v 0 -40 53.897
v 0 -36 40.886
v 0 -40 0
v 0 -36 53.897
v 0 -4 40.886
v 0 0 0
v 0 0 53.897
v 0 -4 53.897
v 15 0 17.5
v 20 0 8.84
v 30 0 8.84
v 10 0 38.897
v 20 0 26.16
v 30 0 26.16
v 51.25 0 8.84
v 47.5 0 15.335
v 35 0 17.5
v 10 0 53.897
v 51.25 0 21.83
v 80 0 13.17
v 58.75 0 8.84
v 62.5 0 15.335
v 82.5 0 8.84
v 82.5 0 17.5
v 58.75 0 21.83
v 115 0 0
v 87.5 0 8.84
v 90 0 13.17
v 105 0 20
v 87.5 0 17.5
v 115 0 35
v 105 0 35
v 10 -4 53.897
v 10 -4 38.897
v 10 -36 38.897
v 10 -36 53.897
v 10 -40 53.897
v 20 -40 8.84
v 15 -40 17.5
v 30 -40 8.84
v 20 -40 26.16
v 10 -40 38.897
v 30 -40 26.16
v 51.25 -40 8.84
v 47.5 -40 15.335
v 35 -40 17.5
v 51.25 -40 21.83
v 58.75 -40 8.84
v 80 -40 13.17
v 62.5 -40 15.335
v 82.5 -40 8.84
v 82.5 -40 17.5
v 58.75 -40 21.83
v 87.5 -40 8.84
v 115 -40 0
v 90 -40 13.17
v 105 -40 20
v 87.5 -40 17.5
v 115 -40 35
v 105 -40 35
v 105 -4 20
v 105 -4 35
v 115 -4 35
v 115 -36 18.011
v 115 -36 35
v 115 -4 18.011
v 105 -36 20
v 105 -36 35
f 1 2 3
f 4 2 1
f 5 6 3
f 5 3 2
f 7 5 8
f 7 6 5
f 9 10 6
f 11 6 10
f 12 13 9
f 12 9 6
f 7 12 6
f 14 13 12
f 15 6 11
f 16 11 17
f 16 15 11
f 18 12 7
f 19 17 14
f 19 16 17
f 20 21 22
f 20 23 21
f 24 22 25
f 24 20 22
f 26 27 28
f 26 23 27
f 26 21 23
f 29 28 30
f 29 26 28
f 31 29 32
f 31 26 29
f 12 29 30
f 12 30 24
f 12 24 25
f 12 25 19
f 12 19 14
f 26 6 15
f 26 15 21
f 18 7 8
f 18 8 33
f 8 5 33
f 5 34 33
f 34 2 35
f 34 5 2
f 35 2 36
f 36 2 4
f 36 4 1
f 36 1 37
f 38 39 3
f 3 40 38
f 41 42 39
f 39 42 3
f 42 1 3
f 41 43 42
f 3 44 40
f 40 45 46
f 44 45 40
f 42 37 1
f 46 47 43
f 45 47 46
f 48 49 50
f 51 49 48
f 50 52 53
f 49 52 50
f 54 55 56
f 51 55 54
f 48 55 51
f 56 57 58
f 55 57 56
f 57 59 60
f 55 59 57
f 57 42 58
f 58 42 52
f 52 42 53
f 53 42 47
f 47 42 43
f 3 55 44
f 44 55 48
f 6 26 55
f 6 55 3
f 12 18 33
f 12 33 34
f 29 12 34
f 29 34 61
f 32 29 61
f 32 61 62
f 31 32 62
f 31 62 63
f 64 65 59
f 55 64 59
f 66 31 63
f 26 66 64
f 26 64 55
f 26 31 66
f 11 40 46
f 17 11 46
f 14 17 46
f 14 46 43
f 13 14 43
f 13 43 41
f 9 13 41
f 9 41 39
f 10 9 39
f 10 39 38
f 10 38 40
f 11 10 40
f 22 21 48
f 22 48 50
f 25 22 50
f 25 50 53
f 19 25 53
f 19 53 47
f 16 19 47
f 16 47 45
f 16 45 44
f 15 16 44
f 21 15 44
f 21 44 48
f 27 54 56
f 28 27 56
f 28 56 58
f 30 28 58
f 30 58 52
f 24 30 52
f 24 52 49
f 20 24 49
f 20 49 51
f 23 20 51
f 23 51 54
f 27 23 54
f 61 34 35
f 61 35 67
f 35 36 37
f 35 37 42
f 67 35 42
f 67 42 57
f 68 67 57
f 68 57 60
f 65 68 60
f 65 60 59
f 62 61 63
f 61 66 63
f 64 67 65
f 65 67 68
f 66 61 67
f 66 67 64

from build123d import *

# Parameters (mm, degrees)
PAD_DEPTH    = 40
SKETCH001_W  = 142.064534
SKETCH001_H  = 32
POCKET_DEPTH = 35.197263


with BuildPart() as part:
    # Sketch → Pad (new body)
    with BuildSketch(Plane.XZ):
        Polygon((0, 0), (0, 53.896675), (10, 53.896675), (10, 38.896675), (105, 20), (105, 35), (115, 35), (115, 0), align=None)
        Polygon((30, 8.839746), (35, 17.5), (30, 26.160254), (20, 26.160254), (15, 17.5), (20, 8.839746), align=None, mode=Mode.SUBTRACT)
        Polygon((58.75, 8.839746), (62.5, 15.334936), (58.75, 21.830127), (51.25, 21.830127), (47.5, 15.334936), (51.25, 8.839746), align=None, mode=Mode.SUBTRACT)
        Polygon((87.5, 8.839746), (90, 13.169873), (87.5, 17.5), (82.5, 17.5), (80, 13.169873), (82.5, 8.839746), align=None, mode=Mode.SUBTRACT)
    extrude(amount=PAD_DEPTH)

    # Sketch001 (on Face4 of Pad) → Pocket (cut, through all)
    with BuildSketch(Plane(origin=(7.823159, 0, 39.329676), x_dir=(-0.980785, 0, 0.19509), z_dir=(0.19509, 0, 0.980785))):
        with Locations((-56.611011, 20)):
            Rectangle(SKETCH001_W, SKETCH001_H)
    extrude(amount=POCKET_DEPTH, mode=Mode.SUBTRACT)


solid = part.part
